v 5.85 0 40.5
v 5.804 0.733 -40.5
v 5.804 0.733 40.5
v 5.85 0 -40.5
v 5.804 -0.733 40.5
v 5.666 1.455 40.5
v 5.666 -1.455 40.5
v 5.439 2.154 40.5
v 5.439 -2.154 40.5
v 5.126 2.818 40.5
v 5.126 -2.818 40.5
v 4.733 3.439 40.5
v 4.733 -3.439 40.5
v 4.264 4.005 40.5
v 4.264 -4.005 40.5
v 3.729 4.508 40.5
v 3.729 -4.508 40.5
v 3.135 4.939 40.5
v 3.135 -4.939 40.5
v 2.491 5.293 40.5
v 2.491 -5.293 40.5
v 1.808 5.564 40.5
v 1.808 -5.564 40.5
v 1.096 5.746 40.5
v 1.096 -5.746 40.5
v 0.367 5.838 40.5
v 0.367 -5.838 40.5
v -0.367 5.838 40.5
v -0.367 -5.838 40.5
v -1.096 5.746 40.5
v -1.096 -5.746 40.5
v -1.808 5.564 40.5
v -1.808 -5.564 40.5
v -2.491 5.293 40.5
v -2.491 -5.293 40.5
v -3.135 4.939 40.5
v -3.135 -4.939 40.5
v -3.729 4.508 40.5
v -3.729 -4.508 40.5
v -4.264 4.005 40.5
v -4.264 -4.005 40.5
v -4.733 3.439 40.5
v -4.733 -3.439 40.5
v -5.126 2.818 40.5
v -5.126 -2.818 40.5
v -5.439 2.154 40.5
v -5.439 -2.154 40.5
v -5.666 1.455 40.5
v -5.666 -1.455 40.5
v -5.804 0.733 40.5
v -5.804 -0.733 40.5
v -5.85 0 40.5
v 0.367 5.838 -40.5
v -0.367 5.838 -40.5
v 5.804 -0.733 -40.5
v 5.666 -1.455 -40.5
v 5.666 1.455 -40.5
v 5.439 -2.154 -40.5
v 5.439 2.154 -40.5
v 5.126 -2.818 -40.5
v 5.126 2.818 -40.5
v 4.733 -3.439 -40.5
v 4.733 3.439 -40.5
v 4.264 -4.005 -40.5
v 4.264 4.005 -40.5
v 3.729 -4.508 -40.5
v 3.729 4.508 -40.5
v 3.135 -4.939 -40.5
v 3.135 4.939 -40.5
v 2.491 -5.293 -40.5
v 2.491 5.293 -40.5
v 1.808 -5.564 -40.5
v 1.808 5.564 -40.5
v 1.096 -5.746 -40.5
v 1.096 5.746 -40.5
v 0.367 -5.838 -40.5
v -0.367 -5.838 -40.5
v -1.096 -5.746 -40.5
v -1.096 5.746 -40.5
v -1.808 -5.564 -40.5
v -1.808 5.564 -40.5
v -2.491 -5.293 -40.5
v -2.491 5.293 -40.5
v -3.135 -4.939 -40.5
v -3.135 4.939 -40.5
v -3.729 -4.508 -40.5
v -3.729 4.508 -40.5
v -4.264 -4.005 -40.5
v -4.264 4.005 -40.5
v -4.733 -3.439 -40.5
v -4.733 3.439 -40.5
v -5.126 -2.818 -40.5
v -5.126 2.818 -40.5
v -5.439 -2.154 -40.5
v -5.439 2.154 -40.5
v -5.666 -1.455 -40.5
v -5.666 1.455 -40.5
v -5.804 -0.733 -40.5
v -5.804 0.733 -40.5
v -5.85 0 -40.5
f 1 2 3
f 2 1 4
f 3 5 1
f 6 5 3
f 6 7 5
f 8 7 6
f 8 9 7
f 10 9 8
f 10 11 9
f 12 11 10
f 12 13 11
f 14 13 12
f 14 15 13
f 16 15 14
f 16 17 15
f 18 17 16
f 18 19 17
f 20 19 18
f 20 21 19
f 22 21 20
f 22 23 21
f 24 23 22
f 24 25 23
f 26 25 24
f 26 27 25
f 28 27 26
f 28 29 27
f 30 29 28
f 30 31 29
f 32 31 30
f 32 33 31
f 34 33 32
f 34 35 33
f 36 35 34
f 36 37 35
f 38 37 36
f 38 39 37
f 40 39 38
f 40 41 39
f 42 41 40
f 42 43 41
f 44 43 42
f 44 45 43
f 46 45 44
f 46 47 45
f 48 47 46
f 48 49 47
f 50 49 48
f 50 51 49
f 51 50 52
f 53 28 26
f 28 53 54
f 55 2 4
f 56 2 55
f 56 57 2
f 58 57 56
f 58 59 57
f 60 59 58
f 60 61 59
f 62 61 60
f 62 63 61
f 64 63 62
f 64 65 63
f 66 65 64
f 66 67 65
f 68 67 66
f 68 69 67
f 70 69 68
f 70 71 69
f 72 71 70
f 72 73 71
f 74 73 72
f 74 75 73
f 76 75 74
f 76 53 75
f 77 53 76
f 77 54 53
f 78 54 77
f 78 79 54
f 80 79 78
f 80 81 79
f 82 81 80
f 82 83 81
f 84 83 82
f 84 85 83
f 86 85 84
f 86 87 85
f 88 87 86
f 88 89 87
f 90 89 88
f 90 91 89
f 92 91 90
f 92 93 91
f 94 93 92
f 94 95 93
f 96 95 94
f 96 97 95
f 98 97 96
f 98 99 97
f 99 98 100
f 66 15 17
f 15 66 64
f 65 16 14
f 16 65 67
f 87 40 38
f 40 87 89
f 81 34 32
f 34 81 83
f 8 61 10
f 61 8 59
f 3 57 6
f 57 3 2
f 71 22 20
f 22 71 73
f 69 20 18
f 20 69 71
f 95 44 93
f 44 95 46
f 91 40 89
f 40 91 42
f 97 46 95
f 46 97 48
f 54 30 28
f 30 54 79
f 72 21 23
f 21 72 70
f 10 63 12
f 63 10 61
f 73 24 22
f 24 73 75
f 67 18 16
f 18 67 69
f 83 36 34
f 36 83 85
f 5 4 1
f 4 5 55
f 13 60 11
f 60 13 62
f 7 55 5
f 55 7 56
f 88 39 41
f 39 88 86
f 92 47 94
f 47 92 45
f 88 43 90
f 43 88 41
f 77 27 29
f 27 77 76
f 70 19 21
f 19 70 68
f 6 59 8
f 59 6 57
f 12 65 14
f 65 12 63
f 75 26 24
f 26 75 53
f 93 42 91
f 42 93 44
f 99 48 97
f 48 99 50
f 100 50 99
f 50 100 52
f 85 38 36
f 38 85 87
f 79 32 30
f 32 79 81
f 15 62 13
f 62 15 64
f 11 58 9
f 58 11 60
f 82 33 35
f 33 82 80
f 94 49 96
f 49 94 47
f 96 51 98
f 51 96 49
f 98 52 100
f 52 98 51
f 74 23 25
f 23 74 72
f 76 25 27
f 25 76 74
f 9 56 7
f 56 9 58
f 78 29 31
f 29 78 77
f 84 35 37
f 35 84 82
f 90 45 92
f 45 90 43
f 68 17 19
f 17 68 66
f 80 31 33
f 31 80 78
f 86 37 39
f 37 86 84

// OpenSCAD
$fn = 50;


difference() {
	union() {
		translate(v = [0, 0, -40.5000000000]) {
			cylinder(h = 81, r = 5.8500000000);
		}
	}
	union() {
		translate(v = [0, 0, -100.0000000000]) {
			cylinder(h = 200, r = 0);
		}
	}
}
